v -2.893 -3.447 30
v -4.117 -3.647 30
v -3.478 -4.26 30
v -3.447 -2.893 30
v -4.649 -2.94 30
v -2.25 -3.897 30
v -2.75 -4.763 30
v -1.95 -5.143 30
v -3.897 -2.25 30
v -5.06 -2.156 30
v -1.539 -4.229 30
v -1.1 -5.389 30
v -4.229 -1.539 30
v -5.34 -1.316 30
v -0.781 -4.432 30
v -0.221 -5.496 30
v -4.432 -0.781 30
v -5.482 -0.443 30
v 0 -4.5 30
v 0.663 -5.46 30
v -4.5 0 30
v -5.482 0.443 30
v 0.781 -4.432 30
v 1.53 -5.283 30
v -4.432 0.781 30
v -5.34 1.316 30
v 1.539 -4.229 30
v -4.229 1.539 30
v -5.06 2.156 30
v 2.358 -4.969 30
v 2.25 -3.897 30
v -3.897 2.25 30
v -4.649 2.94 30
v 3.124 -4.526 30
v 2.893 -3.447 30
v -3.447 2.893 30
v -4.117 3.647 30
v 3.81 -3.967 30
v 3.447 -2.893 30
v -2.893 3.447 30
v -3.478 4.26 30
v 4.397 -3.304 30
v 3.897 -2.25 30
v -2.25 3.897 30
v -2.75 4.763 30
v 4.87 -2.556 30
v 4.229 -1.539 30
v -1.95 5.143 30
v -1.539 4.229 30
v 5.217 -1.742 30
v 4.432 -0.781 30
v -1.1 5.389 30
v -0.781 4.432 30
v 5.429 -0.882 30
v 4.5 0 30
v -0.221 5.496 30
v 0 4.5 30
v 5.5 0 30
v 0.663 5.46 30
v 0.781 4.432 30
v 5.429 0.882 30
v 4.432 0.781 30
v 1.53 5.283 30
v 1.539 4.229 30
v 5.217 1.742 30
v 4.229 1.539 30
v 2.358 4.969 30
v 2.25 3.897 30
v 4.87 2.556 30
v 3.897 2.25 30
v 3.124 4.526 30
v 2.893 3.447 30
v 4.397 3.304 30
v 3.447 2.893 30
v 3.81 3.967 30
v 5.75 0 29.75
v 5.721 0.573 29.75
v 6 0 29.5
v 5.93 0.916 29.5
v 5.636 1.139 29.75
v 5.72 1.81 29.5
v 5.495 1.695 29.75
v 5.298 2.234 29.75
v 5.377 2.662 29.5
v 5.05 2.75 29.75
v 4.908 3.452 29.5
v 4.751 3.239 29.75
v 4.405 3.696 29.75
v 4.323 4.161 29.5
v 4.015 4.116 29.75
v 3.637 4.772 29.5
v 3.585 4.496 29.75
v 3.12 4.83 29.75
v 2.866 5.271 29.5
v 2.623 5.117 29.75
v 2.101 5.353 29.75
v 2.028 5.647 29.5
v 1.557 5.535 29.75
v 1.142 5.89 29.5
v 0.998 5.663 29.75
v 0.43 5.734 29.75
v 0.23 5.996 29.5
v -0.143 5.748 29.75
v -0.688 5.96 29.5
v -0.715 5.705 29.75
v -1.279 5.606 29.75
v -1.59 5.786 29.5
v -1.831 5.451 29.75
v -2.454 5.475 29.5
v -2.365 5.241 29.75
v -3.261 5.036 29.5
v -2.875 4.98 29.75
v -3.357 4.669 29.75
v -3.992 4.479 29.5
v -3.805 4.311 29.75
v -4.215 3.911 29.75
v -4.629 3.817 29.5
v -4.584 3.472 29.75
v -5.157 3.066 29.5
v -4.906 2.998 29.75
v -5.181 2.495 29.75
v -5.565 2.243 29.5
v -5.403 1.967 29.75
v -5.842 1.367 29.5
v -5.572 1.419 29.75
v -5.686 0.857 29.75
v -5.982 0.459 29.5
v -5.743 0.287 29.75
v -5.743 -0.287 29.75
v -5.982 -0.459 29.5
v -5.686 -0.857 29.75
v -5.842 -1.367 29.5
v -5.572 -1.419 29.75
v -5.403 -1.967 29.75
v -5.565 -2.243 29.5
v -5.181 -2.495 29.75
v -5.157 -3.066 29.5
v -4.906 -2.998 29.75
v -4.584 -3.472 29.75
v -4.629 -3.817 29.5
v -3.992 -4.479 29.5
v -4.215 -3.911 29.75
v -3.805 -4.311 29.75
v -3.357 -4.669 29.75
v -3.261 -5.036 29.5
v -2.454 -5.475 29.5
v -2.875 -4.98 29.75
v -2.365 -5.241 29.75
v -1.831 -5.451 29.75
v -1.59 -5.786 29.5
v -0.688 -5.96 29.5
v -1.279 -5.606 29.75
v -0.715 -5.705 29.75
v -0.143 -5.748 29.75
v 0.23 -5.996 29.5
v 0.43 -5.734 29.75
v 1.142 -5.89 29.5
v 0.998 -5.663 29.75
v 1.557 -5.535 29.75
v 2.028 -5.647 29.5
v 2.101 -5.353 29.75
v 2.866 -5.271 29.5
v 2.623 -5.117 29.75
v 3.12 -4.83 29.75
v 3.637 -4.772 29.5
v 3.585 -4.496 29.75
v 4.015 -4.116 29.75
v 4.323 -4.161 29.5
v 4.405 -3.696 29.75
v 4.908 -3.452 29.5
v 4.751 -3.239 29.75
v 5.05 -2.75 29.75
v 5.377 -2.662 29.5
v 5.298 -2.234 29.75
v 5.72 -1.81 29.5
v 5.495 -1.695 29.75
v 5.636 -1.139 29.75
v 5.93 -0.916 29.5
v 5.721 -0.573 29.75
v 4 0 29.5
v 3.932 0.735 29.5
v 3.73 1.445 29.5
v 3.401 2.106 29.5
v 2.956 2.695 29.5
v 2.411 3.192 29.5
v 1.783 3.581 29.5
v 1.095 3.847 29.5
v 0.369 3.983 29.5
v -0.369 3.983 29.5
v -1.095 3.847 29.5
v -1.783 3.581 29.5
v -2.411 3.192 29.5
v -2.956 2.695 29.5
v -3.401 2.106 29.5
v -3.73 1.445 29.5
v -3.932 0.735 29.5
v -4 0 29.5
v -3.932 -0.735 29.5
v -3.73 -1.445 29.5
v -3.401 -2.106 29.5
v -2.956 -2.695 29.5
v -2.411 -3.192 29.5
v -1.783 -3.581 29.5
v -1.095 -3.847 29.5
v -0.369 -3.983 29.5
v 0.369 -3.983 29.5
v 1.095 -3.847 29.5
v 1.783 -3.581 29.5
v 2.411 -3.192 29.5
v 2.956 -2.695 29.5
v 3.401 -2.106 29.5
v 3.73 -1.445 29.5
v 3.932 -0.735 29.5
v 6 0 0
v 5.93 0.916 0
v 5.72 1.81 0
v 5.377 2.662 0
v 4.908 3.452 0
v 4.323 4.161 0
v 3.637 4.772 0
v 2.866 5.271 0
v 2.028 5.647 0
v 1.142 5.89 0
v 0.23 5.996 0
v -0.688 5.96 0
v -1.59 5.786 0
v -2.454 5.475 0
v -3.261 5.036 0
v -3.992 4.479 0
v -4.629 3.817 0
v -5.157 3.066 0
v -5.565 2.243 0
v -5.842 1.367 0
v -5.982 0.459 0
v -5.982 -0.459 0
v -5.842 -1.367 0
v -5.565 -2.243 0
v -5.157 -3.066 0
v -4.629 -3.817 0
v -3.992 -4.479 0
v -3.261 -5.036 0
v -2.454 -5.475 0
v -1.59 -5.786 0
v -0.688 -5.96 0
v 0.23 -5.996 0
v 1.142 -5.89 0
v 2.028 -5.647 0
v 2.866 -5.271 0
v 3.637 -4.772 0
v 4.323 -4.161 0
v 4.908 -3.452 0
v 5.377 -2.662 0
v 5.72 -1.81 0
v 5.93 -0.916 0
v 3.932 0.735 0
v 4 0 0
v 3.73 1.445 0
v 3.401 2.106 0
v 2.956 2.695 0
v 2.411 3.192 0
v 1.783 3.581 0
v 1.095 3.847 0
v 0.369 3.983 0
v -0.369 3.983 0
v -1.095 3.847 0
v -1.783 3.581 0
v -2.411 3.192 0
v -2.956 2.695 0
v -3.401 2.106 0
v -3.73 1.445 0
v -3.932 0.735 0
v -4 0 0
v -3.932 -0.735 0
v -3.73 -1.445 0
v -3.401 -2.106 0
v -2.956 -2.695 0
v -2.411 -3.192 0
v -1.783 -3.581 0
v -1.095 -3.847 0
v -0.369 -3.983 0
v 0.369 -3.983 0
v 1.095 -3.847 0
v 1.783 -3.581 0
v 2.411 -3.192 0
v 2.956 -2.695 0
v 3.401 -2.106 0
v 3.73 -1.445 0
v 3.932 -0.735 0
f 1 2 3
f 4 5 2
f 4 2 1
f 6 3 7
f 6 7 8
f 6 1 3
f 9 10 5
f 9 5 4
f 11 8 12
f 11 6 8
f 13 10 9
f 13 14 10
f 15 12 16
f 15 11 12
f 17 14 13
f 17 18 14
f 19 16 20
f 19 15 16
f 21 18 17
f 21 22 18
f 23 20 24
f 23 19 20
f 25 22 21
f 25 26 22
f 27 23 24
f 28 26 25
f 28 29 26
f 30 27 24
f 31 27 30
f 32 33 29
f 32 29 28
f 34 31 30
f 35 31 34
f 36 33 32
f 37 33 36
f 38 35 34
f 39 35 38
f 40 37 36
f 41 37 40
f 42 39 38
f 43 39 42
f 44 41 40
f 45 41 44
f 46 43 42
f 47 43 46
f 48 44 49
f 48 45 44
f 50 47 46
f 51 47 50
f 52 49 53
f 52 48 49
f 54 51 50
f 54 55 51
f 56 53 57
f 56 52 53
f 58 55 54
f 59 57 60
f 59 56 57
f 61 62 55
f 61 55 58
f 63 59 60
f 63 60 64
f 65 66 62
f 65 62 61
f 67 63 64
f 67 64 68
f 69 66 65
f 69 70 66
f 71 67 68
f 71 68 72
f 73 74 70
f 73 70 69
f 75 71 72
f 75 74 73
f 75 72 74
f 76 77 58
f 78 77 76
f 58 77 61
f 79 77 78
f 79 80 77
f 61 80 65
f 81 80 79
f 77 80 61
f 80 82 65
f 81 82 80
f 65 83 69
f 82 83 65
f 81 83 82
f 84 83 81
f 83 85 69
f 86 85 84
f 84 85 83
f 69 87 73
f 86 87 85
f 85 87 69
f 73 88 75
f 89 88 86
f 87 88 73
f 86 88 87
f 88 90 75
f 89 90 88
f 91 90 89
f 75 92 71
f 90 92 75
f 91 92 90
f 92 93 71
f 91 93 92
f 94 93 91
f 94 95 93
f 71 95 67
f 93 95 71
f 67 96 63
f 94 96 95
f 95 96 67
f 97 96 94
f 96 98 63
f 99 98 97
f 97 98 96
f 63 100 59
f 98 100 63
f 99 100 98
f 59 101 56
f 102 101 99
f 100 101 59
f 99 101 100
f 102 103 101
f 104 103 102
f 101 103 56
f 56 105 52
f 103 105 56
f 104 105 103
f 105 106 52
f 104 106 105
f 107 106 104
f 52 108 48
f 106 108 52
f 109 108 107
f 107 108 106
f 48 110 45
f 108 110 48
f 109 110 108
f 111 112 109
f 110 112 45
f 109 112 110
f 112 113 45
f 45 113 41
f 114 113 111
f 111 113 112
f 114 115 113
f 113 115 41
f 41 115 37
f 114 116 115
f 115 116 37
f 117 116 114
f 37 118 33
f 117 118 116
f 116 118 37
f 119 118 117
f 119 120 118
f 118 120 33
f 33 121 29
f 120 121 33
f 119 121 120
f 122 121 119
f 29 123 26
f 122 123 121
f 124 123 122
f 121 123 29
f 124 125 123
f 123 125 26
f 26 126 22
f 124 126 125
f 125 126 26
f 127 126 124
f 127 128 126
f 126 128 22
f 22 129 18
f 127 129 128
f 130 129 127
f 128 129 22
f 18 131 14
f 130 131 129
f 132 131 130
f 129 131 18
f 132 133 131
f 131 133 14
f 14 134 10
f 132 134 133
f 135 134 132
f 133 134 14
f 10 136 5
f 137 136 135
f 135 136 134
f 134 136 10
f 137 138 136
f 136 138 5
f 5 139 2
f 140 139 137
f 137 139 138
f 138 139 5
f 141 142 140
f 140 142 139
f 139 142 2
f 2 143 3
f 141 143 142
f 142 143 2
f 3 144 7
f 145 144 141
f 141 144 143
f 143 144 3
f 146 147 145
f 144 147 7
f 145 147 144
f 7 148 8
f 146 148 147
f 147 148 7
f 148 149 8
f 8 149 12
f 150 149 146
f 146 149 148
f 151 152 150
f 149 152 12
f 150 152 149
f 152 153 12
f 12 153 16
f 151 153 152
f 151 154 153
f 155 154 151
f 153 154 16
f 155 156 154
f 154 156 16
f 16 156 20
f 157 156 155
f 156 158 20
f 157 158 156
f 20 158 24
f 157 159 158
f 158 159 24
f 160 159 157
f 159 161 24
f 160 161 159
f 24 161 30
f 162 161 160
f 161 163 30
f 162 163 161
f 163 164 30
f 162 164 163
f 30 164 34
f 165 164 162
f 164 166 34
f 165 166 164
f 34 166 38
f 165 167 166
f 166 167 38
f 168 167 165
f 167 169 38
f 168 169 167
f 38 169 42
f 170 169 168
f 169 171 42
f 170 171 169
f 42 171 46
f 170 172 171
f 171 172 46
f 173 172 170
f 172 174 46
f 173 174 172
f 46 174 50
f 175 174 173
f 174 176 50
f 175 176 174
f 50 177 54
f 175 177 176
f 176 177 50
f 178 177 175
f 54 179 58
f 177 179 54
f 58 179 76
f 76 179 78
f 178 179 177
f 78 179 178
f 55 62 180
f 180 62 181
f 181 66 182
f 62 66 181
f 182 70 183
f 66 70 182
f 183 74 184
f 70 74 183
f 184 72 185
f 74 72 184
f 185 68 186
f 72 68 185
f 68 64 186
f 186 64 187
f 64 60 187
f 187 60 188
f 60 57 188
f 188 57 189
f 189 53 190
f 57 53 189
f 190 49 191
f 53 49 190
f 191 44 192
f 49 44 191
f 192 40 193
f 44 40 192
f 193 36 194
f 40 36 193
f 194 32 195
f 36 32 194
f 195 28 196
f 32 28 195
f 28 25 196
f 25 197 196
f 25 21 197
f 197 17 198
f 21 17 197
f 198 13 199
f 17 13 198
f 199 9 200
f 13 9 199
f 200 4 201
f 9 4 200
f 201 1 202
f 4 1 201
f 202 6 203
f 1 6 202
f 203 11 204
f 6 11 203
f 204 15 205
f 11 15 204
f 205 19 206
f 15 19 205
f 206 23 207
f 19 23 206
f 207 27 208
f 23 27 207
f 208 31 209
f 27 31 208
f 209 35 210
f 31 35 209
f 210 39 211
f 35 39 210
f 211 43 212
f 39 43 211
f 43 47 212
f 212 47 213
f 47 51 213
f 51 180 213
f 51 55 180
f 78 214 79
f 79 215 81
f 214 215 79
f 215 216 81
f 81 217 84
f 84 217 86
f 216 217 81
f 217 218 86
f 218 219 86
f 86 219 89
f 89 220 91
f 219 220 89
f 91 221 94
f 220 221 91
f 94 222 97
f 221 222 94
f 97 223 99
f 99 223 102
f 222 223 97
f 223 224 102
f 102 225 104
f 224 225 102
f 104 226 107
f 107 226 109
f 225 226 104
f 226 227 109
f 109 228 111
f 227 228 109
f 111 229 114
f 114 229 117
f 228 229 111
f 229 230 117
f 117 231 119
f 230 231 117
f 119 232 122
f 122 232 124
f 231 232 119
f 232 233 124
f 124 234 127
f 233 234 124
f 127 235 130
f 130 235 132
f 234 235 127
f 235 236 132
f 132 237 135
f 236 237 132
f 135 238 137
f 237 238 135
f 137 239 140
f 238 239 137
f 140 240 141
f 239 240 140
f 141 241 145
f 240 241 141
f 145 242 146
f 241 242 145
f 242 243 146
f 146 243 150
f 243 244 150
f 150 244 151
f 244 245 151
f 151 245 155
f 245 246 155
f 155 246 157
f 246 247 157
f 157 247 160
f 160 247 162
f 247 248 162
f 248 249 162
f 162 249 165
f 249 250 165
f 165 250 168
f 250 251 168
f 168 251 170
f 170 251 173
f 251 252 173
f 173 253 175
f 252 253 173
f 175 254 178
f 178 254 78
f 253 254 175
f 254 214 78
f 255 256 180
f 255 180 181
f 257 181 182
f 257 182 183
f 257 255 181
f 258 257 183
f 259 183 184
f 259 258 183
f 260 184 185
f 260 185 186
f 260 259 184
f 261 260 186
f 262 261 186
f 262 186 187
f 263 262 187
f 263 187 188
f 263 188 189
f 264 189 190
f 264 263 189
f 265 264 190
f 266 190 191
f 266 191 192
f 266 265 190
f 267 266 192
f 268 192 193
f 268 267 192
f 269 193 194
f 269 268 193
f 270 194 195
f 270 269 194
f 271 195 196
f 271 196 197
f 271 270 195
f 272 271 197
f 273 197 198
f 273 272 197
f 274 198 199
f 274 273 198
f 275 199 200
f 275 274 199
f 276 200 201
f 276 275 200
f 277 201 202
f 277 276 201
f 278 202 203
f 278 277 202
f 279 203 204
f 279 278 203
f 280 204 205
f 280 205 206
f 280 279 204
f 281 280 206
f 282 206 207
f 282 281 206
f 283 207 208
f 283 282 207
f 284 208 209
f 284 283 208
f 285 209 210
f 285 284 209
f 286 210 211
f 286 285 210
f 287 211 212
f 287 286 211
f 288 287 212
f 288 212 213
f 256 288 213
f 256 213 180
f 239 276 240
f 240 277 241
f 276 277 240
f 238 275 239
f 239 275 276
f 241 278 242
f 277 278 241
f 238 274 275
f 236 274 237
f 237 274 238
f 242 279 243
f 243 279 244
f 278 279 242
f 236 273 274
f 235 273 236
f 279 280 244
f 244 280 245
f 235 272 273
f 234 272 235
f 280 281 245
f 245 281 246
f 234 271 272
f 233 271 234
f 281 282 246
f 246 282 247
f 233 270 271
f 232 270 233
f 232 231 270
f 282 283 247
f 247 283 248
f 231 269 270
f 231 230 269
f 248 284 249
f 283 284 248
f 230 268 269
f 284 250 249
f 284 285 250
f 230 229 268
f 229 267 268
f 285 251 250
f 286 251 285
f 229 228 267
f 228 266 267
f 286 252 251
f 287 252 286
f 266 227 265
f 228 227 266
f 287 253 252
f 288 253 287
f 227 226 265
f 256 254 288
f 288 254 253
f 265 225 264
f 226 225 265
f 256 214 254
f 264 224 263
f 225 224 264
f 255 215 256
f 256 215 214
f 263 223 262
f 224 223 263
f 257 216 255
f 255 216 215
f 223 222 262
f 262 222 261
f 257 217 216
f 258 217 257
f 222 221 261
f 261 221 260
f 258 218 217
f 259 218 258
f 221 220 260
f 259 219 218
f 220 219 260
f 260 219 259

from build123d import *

# Parameters (mm, degrees)
SKETCH_R        = 6
SKETCH_R_2      = 4
PAD_DEPTH       = 30
CHAMFER_SIZE    = 0.5
CHAMFER001_SIZE = 0.5


with BuildPart() as part:
    # Sketch → Pad (new body)
    with BuildSketch(Plane.XY):
        Circle(SKETCH_R)
        Circle(SKETCH_R_2, mode=Mode.SUBTRACT)
    extrude(amount=PAD_DEPTH)

    # Chamfer
    chamfer_edges = [part.edges().sort_by_distance(p)[0] for p in [
        (-4, 0, 30),
    ]]
    chamfer(chamfer_edges, length=CHAMFER_SIZE)

    # Chamfer001
    chamfer001_edges = [part.edges().sort_by_distance(p)[0] for p in [
        (-6, 0, 30),
    ]]
    chamfer(chamfer001_edges, length=CHAMFER001_SIZE)


solid = part.part
